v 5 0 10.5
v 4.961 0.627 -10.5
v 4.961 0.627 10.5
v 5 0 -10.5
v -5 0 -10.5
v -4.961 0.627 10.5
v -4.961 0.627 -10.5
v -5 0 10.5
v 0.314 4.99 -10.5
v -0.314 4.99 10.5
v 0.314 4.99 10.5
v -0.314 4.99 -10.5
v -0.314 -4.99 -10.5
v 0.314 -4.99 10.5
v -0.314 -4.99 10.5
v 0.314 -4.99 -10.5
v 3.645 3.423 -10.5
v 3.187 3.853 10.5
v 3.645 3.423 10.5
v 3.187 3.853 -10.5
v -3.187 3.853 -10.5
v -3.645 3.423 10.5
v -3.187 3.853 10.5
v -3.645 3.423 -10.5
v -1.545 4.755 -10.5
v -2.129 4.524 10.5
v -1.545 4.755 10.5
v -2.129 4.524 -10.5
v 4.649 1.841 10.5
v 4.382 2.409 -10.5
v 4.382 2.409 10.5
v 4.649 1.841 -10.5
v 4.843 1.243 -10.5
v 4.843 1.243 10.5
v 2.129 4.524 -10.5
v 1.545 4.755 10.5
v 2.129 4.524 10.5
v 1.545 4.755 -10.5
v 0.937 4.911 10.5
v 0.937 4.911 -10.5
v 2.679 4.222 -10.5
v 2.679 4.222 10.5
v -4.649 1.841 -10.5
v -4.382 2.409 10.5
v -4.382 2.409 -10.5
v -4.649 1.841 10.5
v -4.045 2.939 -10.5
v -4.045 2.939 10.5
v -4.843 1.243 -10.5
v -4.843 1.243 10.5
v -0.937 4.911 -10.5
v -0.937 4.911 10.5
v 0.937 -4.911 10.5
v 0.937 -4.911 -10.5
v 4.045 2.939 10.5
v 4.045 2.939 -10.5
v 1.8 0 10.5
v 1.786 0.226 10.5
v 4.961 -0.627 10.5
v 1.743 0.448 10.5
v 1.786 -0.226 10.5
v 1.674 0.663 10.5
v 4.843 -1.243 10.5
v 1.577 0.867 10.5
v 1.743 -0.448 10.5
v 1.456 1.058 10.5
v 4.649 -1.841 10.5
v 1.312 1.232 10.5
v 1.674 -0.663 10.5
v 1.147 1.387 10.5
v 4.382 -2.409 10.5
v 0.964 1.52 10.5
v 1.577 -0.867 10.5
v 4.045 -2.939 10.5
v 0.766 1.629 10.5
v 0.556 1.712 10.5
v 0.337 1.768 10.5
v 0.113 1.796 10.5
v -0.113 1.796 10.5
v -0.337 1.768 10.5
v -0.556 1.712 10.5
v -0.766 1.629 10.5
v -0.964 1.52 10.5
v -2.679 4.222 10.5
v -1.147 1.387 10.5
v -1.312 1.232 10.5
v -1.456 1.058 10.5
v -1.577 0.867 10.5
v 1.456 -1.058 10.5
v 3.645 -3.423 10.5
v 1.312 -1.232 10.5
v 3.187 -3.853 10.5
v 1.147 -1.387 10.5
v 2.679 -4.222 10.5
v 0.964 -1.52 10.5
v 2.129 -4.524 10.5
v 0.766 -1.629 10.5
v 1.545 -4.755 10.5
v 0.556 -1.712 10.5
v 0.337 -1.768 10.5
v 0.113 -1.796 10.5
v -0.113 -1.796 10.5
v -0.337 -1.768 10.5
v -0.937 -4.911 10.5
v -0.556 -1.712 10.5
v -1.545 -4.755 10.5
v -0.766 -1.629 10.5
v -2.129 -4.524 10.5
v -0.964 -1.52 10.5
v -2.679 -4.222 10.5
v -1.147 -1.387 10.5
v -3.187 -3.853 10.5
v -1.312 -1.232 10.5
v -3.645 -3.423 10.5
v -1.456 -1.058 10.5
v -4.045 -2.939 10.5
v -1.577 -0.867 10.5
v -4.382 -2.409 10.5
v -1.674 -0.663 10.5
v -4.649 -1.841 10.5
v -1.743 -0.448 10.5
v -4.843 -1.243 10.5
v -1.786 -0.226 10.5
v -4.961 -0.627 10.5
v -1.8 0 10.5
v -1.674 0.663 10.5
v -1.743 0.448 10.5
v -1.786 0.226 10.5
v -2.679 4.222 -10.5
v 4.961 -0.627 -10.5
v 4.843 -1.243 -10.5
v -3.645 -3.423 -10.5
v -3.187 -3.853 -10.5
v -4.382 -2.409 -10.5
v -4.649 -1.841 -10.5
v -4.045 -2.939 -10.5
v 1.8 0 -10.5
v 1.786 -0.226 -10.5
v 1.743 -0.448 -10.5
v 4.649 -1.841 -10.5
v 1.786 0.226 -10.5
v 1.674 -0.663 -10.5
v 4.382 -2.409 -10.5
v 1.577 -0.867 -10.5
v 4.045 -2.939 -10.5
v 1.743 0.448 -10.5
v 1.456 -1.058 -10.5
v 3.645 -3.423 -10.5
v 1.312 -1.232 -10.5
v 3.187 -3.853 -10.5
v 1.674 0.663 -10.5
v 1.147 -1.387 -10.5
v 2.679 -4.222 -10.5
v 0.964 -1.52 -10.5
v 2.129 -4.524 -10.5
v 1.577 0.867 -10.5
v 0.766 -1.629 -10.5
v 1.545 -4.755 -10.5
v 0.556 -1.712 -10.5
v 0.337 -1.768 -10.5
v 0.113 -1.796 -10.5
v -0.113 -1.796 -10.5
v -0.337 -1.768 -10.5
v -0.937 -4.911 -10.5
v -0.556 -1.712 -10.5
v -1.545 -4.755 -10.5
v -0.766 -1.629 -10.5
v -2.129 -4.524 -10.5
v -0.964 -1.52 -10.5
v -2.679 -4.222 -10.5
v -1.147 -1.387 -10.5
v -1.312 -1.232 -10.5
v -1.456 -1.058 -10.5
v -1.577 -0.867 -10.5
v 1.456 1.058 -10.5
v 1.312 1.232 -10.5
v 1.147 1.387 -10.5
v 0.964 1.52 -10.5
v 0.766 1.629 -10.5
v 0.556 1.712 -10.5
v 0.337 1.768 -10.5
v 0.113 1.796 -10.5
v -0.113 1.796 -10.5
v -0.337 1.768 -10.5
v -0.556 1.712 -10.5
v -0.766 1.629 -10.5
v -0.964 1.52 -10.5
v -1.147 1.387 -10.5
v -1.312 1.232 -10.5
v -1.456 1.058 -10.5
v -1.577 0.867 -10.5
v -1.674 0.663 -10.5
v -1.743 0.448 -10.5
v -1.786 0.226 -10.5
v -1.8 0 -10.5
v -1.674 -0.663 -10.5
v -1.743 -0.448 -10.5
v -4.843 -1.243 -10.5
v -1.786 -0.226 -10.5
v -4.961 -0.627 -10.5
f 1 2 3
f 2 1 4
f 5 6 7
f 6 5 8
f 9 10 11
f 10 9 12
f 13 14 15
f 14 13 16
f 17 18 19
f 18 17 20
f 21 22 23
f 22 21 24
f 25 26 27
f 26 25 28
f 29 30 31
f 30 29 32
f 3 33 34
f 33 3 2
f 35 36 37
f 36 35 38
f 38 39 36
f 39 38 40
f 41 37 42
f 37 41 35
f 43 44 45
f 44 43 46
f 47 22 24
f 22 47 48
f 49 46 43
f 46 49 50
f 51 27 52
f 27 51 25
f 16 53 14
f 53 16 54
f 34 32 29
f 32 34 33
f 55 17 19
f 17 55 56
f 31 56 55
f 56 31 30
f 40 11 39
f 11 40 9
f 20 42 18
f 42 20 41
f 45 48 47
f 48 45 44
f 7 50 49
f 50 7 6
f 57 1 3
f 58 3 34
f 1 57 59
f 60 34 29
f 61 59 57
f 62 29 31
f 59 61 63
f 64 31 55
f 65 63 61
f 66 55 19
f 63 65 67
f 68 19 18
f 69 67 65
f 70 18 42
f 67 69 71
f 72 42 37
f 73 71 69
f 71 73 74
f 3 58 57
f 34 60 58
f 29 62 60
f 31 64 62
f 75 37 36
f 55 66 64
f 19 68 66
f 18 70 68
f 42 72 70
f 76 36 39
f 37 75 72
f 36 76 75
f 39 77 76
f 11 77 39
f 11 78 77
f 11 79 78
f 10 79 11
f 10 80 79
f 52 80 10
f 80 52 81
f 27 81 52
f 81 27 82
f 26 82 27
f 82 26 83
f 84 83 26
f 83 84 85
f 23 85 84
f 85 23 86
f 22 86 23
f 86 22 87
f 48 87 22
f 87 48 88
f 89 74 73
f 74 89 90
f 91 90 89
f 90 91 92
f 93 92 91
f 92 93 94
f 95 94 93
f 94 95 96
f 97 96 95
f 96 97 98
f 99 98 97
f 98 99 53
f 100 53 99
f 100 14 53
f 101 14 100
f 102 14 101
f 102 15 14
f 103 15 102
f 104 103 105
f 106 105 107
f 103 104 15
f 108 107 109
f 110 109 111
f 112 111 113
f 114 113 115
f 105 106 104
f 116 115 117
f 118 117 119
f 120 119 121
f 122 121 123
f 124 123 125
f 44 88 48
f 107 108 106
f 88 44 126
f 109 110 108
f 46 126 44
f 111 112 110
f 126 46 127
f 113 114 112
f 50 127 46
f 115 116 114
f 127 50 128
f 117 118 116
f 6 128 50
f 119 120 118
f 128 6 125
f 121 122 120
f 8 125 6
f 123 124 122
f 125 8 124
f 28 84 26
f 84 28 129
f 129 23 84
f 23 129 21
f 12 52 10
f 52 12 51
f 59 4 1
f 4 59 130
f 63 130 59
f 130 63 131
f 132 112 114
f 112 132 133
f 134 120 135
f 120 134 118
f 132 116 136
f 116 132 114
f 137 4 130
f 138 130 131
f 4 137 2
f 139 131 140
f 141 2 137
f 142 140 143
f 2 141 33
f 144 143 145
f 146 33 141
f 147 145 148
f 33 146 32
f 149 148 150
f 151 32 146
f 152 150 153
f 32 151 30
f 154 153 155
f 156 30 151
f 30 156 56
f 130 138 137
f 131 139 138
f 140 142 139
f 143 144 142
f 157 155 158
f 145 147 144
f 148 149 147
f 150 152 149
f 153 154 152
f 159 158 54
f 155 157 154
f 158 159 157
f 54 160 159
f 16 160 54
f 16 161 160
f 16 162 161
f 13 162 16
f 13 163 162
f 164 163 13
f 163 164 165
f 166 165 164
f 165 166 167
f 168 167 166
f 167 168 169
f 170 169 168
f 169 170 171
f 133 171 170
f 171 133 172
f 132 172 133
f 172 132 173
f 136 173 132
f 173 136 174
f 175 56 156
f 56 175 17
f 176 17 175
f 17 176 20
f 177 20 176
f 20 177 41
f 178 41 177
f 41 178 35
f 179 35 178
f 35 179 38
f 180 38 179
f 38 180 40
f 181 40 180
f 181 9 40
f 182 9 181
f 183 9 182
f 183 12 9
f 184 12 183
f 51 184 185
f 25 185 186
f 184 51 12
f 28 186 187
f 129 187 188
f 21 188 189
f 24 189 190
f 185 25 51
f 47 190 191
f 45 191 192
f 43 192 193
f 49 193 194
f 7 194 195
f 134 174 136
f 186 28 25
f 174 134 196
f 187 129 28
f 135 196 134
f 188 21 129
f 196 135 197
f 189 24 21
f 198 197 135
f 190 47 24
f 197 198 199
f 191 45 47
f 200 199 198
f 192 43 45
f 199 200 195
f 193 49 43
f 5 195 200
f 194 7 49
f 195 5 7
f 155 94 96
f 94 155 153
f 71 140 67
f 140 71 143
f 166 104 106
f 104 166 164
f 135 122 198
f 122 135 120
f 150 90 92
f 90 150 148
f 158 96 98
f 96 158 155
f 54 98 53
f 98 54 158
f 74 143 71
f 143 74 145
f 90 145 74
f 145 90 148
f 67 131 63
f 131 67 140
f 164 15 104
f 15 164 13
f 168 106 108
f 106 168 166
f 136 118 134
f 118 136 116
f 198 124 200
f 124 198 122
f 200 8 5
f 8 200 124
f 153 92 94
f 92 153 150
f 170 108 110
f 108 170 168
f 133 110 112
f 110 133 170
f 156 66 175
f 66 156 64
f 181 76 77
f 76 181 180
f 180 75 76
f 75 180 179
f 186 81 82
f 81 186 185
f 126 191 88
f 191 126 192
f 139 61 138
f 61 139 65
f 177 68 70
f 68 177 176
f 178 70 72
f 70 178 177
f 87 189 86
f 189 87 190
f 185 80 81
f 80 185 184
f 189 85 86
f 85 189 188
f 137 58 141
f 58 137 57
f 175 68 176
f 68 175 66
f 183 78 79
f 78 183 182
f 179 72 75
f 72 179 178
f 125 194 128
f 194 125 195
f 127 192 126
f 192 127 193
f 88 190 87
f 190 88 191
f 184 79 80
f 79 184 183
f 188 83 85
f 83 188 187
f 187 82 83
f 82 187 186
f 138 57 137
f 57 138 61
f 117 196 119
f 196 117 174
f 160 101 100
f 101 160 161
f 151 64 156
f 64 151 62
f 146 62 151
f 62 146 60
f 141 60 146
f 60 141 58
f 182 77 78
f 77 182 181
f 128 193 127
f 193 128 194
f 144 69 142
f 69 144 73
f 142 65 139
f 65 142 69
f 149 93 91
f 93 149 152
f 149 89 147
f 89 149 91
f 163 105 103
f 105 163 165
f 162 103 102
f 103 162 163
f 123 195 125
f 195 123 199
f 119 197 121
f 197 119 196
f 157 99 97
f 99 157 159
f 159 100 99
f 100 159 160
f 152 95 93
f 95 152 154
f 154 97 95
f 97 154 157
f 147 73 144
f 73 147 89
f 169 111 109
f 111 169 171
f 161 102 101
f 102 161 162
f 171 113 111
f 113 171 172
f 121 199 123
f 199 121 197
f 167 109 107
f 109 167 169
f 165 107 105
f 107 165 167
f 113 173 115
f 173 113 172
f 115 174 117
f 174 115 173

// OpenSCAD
$fn = 50;


difference() {
	union() {
		translate(v = [0, 0, -10.5000000000]) {
			cylinder(h = 21, r = 5.0000000000);
		}
	}
	union() {
		translate(v = [0, 0, -100.0000000000]) {
			cylinder(h = 200, r = 1.8000000000);
		}
	}
}
